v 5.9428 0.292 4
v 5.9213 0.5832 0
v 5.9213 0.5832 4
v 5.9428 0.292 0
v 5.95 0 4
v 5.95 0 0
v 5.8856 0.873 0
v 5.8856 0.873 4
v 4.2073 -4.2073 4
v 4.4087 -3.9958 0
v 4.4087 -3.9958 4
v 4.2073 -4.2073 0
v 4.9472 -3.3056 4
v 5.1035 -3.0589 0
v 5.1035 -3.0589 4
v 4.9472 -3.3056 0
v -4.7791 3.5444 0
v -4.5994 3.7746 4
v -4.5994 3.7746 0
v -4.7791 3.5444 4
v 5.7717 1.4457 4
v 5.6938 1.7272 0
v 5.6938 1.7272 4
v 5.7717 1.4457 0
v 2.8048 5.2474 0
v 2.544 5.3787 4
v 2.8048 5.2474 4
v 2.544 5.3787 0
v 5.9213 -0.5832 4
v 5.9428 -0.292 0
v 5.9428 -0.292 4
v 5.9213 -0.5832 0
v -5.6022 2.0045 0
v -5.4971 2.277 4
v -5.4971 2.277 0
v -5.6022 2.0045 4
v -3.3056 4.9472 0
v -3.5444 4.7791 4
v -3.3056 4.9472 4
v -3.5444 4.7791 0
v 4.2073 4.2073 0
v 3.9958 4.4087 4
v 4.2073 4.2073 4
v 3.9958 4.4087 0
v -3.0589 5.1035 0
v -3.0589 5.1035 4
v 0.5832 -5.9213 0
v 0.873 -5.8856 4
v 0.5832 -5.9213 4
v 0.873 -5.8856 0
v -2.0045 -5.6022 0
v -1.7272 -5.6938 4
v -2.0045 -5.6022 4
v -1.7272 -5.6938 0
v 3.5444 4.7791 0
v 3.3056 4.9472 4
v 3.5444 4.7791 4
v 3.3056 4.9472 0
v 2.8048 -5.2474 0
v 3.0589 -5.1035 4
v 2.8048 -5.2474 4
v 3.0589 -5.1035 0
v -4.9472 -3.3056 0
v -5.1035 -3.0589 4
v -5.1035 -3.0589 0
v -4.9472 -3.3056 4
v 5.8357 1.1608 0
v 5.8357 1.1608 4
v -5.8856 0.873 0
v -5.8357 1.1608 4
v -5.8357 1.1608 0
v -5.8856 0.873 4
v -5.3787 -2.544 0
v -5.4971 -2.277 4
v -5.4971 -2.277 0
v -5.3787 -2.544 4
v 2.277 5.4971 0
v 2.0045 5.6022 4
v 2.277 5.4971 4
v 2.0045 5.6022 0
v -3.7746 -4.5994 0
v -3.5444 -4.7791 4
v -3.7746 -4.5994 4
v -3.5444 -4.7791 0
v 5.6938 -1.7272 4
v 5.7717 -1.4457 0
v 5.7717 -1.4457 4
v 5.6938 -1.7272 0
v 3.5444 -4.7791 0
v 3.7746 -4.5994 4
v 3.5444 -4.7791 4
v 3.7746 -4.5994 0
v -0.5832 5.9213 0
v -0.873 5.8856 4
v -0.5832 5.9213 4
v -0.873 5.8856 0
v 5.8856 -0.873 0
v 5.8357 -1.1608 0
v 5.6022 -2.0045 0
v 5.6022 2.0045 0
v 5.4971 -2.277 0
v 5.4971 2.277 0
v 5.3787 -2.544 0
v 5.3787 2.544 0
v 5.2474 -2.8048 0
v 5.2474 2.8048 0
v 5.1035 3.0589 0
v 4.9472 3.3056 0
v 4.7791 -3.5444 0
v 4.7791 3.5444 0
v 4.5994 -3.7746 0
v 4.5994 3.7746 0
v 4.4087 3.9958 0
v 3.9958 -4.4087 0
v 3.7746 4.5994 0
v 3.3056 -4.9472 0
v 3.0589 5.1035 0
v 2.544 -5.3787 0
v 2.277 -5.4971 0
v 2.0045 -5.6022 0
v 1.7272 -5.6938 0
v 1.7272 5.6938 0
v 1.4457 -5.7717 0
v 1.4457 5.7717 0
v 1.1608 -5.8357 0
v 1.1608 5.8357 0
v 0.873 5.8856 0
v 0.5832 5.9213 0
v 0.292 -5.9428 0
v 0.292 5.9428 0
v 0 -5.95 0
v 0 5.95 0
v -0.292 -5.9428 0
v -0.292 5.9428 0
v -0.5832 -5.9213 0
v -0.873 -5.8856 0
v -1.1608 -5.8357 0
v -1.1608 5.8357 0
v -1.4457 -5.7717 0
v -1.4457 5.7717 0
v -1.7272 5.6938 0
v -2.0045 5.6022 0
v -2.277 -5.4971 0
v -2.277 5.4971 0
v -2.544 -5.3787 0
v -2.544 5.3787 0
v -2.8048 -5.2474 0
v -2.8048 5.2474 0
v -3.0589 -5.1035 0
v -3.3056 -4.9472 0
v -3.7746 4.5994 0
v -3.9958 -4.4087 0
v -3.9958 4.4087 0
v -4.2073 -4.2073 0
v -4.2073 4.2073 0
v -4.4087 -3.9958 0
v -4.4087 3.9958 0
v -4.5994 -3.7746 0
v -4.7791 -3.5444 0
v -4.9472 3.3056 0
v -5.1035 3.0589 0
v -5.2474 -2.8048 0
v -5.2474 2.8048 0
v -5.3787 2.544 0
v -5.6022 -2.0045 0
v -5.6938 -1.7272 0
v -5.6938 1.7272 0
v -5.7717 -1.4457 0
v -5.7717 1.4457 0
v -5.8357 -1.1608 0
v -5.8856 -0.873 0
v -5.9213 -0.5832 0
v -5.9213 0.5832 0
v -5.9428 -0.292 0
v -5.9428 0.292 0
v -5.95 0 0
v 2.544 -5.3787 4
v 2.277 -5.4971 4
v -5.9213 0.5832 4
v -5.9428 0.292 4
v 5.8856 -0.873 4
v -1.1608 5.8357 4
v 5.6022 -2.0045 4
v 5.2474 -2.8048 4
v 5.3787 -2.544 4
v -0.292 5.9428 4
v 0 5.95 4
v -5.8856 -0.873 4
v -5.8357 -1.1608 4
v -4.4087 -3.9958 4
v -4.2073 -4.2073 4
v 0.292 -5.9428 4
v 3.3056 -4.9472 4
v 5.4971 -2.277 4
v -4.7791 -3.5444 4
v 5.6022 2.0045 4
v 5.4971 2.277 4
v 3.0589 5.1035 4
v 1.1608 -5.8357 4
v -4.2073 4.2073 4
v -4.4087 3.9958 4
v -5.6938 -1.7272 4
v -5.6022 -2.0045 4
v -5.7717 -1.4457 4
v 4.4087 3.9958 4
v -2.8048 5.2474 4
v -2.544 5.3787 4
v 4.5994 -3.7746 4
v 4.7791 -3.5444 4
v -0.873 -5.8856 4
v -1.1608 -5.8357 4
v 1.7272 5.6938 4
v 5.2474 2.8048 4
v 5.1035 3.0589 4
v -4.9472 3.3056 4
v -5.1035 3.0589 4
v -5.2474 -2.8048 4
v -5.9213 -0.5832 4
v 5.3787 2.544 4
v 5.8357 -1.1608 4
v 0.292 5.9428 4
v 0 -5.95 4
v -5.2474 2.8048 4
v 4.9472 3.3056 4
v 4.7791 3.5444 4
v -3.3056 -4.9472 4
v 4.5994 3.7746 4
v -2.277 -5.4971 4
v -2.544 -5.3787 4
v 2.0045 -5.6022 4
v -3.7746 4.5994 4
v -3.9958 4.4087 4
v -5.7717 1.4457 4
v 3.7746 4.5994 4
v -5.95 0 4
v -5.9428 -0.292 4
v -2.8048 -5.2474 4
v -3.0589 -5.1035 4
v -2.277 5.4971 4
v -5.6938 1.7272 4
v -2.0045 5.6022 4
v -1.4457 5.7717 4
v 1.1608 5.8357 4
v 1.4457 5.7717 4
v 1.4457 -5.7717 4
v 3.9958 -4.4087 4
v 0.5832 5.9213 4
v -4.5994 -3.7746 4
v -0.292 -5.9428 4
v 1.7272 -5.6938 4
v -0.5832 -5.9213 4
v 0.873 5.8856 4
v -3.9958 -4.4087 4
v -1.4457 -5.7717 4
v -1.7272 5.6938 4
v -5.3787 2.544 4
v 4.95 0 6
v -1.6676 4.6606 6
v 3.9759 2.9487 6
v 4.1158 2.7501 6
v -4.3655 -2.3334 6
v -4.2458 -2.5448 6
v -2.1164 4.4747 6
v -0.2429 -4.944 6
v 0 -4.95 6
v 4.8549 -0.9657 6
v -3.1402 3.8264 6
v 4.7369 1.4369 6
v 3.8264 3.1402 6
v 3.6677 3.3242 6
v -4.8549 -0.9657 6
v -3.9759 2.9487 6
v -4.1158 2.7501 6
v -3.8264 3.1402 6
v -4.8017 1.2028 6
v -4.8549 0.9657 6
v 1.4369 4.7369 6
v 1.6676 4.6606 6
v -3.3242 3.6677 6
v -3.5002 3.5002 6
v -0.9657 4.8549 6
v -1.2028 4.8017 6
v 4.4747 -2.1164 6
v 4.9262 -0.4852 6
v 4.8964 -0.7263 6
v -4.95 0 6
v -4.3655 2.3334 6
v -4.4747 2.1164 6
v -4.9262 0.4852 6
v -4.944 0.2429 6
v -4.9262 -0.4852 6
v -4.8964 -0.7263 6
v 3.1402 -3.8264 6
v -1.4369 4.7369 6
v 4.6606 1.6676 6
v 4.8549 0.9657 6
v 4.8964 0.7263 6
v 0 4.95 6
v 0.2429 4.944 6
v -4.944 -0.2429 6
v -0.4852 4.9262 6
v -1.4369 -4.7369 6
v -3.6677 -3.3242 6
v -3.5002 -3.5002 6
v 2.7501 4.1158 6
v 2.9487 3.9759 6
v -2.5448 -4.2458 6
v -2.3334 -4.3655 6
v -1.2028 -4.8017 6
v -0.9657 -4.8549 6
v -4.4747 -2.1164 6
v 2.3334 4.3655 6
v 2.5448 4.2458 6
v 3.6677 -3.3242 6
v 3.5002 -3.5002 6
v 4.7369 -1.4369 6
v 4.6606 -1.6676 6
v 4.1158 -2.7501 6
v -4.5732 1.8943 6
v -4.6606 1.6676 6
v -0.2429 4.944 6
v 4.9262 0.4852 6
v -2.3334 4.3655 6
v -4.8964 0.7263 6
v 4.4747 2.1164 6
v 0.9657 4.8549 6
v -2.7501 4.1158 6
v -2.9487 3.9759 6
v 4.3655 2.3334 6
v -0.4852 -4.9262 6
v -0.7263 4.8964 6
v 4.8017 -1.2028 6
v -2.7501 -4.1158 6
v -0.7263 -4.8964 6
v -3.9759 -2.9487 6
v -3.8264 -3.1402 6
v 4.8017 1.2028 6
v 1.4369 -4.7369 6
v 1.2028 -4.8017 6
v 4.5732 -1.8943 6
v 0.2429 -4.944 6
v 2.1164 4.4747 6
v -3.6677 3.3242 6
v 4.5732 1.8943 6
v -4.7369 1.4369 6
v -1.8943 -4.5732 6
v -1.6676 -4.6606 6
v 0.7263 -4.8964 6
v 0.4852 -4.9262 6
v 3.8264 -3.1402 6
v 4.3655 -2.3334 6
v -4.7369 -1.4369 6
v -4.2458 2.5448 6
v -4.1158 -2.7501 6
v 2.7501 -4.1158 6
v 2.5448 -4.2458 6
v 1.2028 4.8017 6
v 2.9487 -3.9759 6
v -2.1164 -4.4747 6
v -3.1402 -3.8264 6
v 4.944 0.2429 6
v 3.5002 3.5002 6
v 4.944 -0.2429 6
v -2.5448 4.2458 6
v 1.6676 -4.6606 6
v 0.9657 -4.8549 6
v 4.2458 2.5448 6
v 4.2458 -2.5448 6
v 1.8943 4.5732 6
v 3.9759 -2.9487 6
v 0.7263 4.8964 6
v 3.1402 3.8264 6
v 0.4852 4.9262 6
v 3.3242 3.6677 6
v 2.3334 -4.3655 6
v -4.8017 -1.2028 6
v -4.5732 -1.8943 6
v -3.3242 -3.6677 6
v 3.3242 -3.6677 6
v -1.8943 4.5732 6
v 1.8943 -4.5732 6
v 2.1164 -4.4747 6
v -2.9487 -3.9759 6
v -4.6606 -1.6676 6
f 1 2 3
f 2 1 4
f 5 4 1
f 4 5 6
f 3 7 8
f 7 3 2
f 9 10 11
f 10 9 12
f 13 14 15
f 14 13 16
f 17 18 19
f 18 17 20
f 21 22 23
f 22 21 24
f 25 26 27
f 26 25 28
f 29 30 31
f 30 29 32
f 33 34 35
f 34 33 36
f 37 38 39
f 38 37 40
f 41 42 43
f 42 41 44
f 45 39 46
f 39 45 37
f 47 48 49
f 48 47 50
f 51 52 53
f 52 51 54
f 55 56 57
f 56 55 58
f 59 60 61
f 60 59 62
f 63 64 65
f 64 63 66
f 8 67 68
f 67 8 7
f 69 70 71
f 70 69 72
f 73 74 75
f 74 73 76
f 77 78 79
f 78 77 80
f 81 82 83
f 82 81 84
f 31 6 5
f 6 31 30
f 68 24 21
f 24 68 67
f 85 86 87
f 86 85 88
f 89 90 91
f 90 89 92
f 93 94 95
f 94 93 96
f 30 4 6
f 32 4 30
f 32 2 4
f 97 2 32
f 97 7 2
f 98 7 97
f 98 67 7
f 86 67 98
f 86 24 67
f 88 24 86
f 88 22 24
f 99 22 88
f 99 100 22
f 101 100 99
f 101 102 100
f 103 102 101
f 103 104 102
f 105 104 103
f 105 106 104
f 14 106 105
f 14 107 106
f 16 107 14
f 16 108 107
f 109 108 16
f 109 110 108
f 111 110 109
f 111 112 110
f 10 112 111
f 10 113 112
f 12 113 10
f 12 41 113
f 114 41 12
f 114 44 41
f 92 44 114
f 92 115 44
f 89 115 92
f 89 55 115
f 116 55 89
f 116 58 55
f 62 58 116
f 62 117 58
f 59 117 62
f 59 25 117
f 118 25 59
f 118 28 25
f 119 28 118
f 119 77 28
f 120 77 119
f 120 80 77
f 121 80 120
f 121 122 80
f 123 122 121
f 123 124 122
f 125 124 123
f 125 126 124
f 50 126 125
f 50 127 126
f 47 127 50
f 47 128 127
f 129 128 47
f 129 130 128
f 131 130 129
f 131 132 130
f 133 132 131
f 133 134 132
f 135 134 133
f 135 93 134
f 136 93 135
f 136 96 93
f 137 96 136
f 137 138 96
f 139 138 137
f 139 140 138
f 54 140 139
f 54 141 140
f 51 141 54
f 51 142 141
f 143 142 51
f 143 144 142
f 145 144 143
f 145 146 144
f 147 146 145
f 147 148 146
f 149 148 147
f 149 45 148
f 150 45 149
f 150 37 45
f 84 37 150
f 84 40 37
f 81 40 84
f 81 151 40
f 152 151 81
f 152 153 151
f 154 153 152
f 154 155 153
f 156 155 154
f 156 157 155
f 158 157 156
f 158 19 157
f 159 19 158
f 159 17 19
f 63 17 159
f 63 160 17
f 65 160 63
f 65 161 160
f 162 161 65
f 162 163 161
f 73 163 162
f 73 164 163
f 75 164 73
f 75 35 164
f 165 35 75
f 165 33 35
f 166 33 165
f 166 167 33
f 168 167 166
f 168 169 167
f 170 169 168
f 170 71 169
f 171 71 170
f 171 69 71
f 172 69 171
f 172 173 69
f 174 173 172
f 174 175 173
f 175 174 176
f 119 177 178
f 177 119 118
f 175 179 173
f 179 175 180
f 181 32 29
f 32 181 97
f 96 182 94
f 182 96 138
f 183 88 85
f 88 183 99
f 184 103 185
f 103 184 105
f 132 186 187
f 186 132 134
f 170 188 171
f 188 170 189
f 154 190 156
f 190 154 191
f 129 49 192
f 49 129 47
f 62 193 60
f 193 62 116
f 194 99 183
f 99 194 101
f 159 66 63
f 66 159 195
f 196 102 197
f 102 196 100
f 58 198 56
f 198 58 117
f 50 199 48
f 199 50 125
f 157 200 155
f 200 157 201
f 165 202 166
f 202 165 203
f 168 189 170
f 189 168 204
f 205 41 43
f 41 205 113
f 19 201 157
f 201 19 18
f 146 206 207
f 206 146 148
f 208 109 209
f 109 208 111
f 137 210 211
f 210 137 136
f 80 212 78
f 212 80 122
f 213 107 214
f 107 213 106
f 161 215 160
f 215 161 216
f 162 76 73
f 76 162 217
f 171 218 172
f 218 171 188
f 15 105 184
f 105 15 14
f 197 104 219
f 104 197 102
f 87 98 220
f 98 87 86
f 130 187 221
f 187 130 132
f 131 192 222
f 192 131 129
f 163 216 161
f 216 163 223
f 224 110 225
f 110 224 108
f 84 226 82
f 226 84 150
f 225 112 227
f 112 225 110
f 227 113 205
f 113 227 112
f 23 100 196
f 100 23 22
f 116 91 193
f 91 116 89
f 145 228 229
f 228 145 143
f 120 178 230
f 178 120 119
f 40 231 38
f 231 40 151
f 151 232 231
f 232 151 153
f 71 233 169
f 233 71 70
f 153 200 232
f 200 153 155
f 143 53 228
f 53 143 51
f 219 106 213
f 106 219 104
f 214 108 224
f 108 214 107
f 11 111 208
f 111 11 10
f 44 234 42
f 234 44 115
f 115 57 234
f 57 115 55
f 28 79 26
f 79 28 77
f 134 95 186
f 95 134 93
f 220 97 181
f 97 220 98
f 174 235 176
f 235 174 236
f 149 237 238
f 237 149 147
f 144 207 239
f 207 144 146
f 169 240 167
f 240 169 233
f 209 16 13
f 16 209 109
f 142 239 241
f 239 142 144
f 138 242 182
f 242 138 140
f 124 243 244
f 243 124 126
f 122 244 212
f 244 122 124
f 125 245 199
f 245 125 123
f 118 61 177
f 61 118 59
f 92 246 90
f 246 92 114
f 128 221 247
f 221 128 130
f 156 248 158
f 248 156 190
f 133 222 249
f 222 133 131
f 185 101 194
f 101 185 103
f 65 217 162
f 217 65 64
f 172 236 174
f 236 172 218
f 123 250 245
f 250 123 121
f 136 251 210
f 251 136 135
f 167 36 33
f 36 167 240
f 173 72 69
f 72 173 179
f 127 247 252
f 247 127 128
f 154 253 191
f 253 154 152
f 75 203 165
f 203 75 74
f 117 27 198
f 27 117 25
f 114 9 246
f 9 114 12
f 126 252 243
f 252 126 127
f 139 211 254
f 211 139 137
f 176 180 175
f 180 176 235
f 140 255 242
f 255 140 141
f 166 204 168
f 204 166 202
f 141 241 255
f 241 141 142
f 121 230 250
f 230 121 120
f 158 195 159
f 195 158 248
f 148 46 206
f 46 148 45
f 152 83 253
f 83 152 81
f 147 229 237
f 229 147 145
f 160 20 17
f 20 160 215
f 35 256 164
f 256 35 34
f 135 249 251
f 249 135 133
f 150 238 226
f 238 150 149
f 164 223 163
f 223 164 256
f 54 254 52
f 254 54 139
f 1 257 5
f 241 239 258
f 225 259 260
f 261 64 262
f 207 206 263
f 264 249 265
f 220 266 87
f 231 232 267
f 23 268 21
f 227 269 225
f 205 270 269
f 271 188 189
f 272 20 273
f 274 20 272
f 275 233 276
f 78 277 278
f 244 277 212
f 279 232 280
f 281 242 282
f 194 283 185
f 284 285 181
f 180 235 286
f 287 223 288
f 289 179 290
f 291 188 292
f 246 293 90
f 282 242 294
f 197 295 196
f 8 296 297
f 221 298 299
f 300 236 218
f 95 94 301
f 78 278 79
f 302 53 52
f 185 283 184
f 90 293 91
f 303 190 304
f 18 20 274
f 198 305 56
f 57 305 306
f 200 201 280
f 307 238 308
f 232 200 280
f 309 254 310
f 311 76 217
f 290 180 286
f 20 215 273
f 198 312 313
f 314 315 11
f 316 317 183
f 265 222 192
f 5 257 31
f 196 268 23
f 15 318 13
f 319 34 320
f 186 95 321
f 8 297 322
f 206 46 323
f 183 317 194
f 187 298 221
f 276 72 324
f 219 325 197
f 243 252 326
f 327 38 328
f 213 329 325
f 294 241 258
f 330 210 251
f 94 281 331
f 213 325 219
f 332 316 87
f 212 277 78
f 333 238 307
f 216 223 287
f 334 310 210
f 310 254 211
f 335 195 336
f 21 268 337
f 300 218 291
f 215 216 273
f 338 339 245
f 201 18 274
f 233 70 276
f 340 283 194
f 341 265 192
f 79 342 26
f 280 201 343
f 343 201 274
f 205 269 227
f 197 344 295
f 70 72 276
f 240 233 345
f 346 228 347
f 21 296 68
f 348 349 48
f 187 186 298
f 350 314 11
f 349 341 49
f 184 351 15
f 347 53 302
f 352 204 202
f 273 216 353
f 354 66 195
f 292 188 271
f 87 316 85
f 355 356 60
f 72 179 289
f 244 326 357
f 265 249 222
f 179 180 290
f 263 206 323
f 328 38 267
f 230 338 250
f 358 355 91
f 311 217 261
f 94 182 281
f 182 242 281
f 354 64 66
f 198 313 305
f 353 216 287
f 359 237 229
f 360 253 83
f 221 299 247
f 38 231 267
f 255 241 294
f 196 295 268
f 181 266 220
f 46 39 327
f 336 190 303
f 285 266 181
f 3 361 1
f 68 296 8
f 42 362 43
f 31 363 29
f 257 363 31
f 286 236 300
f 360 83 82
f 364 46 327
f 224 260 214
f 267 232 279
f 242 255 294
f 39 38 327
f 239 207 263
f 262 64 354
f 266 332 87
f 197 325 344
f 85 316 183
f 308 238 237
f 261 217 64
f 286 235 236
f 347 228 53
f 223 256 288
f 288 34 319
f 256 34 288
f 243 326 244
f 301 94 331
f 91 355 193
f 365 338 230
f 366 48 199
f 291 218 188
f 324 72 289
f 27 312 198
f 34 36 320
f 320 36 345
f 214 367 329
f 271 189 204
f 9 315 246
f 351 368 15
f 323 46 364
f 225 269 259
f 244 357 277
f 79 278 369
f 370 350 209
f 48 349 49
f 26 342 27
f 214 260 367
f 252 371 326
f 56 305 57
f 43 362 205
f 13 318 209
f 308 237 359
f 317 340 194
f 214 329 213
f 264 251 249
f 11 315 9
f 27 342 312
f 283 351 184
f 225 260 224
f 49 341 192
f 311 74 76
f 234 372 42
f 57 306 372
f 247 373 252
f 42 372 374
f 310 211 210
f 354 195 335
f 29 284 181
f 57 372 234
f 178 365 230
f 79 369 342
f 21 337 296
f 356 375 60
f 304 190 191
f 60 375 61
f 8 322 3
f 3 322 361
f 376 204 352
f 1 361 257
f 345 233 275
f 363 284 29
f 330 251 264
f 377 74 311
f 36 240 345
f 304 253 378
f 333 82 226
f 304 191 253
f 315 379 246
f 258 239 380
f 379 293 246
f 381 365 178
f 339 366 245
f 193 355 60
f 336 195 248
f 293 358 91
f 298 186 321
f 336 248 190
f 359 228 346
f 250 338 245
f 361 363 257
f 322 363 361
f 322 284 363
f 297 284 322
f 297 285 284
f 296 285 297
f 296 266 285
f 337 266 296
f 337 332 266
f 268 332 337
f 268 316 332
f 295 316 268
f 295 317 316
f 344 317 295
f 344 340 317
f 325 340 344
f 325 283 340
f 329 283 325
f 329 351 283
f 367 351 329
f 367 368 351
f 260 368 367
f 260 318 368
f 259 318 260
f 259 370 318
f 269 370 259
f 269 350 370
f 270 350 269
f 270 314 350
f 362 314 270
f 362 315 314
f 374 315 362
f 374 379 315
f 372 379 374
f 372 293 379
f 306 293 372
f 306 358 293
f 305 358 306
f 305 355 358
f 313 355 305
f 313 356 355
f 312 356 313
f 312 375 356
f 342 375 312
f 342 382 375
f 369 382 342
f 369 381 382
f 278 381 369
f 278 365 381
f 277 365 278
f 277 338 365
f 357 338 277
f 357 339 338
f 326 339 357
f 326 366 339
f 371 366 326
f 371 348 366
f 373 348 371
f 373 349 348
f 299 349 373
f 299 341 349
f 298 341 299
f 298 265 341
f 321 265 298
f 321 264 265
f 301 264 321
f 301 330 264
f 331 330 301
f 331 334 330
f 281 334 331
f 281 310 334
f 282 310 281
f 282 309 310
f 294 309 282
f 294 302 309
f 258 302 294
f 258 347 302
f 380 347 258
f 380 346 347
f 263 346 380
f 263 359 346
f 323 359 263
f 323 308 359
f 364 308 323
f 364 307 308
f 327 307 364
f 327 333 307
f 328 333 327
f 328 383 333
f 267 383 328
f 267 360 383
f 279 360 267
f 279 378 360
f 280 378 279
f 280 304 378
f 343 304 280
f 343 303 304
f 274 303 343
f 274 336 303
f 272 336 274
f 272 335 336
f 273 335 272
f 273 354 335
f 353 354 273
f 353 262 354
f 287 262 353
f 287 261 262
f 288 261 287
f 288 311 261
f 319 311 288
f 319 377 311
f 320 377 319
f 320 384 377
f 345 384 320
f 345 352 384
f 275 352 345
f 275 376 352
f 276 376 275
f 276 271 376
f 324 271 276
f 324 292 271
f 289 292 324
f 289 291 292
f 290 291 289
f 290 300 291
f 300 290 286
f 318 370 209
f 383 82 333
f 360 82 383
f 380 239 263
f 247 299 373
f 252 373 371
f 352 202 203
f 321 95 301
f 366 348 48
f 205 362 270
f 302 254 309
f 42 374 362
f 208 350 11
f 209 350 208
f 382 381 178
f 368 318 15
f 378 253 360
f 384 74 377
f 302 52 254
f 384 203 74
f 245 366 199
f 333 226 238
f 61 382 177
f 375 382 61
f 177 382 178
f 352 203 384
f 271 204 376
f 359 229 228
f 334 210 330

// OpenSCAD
// file: common.scad
// Model by Isaac Foraker
//
// Released under Creative Commons Attribution 4.0 International (CC BY 4.0)
// https://creativecommons.org/licenses/by/4.0/

$fn = 128;

// Wheel info
wheel_width = 4;
wheel_rad = 5;
wheel_hole_rad = 2;

// Track info
track_wall_thickness = 2;
track_wall_height = 5;
track_width = wheel_width + 0.5; // Need enough room for the wheel to fit in the arc of the circle
track_rad = 70;

// Simple ring creator.  `rad` is the inside radius of the ring.
module ring(rad, thickness, height) {
    rotate_extrude(convexity=10) translate([rad,0,0]) square([thickness,height]);
}
// main file
// Model by Isaac Foraker
//
// Released under Creative Commons Attribution 4.0 International (CC BY 4.0)
// https://creativecommons.org/licenses/by/4.0/

include <common.scad>

h = track_wall_thickness+2;

cylinder(r=5.95, h=h);
translate([0,0,h])
    cylinder(r1=5.95, r2=4.95, h = track_wall_thickness);
